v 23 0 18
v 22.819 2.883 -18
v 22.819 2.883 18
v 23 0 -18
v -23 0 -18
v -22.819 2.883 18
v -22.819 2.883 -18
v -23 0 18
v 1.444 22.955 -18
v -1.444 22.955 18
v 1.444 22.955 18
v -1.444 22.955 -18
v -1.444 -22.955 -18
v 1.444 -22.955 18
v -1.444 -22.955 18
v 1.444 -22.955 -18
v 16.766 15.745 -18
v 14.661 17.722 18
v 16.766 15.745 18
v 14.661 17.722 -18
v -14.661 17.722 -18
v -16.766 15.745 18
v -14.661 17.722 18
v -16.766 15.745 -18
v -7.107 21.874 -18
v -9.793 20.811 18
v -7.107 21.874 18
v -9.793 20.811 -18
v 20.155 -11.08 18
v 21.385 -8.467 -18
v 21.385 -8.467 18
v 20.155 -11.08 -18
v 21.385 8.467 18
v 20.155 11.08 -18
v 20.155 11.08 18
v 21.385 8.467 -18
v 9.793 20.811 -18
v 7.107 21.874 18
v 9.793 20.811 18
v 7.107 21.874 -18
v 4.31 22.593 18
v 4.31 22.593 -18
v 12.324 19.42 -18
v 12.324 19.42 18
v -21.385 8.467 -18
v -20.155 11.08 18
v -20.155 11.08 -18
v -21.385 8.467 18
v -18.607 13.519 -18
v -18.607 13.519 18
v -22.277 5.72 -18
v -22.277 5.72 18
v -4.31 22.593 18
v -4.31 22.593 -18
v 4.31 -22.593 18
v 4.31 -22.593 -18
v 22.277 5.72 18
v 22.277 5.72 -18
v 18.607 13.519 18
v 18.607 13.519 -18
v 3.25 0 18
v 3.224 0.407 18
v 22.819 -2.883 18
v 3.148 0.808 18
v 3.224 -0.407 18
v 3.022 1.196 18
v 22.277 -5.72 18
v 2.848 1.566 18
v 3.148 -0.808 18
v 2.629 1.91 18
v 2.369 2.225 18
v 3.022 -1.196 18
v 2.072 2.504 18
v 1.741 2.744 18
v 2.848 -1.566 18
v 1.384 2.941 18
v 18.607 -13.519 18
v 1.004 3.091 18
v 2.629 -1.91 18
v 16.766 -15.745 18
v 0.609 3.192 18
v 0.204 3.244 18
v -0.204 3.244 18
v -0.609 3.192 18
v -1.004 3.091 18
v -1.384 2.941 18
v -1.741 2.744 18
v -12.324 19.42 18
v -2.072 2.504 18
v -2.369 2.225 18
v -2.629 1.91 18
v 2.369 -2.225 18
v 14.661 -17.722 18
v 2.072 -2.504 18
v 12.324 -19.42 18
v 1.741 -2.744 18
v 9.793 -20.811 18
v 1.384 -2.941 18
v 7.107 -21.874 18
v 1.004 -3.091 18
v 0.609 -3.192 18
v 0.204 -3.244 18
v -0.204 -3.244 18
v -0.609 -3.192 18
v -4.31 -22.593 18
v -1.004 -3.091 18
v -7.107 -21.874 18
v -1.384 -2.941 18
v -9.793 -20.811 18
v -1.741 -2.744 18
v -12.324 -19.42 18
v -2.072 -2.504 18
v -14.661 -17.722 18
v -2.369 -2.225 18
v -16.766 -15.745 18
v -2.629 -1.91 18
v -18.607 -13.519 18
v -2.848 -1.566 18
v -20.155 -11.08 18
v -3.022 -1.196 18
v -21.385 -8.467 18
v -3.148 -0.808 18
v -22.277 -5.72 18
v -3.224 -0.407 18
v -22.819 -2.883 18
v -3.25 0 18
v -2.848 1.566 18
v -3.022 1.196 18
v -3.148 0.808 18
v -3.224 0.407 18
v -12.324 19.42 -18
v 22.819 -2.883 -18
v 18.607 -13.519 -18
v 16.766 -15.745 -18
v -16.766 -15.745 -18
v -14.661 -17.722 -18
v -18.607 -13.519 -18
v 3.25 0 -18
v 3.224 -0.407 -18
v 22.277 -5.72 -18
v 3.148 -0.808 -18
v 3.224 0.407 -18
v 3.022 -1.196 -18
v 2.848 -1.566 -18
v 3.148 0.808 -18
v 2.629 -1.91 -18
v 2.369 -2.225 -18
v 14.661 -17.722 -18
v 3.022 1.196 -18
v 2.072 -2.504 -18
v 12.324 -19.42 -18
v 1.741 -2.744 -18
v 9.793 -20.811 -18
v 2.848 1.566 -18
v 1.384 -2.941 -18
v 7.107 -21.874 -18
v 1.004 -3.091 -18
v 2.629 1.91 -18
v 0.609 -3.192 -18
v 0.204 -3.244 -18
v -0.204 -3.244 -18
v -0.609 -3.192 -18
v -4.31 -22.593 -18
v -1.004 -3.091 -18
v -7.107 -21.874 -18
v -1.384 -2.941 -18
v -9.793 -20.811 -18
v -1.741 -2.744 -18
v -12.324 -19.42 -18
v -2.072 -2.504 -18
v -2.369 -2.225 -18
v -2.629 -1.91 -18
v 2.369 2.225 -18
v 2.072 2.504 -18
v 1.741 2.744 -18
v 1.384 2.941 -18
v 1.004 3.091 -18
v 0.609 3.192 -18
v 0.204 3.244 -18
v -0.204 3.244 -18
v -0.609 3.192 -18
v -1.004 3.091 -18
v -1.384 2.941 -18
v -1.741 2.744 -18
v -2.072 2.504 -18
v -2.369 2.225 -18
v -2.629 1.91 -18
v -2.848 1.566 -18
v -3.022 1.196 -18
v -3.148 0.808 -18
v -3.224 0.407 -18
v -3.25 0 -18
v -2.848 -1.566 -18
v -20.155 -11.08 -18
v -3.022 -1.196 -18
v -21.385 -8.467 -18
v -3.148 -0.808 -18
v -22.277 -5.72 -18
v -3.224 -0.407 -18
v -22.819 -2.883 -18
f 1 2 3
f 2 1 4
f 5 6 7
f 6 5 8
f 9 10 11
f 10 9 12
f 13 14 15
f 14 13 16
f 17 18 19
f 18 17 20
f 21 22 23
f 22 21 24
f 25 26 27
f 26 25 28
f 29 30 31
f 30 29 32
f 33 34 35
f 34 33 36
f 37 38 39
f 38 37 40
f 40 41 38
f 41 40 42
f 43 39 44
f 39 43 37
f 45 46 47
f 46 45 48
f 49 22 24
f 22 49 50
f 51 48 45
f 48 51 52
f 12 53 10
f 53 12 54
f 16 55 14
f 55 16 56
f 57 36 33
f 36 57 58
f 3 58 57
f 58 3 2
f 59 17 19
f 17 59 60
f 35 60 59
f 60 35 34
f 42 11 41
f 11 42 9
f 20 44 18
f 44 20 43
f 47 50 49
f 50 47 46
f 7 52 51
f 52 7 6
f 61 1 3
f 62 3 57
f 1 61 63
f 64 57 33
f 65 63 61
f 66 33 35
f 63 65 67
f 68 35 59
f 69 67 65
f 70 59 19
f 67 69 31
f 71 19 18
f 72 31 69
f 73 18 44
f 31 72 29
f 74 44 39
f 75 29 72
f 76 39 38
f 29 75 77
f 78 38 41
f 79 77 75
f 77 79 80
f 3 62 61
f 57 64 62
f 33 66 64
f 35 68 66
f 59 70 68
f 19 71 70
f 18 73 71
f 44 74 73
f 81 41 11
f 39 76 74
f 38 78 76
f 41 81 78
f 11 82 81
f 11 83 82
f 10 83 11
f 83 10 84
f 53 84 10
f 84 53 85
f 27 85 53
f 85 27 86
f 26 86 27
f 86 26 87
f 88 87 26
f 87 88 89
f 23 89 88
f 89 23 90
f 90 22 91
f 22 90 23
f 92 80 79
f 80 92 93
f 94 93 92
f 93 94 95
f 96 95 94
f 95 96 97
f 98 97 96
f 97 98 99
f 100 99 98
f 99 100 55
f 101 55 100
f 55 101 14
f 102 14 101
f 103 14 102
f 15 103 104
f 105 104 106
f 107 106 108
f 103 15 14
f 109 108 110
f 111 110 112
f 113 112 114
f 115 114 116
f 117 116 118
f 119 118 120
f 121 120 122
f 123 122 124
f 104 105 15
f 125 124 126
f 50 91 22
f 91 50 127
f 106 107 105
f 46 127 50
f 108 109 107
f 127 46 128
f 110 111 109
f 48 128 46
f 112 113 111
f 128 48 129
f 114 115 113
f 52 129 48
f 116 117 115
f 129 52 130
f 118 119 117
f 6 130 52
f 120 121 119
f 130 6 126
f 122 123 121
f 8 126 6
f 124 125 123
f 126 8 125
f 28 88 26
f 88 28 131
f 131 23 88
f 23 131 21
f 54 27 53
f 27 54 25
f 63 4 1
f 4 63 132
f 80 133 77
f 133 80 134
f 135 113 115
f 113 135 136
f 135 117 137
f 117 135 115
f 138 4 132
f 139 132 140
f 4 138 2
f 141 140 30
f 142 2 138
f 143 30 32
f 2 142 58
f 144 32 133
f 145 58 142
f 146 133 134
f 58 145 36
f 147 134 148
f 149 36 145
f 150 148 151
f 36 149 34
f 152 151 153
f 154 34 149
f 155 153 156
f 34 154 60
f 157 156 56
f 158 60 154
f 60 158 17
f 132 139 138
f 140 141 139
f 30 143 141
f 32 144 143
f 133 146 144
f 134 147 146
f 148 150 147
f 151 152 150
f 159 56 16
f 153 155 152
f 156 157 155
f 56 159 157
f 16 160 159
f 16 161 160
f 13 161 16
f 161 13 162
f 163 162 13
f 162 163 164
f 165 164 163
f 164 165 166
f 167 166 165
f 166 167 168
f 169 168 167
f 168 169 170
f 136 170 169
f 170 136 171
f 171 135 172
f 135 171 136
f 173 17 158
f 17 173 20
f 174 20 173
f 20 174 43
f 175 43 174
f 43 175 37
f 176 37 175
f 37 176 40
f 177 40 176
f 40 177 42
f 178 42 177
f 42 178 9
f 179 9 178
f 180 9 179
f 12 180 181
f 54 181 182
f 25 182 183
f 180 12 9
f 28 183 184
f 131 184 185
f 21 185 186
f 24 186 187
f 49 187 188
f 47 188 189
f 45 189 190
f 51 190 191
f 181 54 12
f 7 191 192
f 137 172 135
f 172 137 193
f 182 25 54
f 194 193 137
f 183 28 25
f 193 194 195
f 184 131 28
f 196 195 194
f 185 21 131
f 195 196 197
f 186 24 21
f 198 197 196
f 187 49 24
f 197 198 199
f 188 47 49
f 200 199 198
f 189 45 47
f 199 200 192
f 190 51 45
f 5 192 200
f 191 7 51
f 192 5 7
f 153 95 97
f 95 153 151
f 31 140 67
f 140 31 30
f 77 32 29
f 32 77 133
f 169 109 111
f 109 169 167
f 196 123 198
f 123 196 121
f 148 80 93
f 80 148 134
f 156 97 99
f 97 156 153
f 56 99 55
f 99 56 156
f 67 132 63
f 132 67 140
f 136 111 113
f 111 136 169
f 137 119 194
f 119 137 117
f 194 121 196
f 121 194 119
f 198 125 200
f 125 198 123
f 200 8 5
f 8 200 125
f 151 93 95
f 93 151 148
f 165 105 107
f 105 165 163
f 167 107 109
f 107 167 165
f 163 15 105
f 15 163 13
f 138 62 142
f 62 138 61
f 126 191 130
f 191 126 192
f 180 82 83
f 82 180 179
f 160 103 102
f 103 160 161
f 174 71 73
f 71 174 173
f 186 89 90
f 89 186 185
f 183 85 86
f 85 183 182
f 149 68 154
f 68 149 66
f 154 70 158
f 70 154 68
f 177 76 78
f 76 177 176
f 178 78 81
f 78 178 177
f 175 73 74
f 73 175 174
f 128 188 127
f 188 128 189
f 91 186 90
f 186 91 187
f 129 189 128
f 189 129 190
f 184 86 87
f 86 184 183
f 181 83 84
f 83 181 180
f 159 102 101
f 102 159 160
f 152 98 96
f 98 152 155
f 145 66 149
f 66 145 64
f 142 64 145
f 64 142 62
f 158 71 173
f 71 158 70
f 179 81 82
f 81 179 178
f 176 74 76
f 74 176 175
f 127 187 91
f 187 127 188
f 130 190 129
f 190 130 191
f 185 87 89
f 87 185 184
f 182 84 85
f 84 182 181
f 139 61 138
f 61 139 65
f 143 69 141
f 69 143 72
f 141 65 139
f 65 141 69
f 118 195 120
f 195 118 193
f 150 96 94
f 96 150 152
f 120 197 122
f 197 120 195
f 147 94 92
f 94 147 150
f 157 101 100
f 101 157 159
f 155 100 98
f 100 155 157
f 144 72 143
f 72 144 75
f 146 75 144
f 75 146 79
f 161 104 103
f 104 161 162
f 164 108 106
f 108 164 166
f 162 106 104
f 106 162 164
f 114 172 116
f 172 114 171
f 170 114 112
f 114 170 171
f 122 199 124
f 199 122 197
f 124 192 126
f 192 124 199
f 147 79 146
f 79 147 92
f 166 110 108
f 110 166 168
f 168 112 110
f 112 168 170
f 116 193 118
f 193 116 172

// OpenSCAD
$fn = 50;


difference() {
	union() {
		translate(v = [0, 0, -18.0000000000]) {
			cylinder(h = 36, r = 23.0000000000);
		}
	}
	union() {
		translate(v = [0, 0, -100.0000000000]) {
			cylinder(h = 200, r = 3.2500000000);
		}
	}
}
